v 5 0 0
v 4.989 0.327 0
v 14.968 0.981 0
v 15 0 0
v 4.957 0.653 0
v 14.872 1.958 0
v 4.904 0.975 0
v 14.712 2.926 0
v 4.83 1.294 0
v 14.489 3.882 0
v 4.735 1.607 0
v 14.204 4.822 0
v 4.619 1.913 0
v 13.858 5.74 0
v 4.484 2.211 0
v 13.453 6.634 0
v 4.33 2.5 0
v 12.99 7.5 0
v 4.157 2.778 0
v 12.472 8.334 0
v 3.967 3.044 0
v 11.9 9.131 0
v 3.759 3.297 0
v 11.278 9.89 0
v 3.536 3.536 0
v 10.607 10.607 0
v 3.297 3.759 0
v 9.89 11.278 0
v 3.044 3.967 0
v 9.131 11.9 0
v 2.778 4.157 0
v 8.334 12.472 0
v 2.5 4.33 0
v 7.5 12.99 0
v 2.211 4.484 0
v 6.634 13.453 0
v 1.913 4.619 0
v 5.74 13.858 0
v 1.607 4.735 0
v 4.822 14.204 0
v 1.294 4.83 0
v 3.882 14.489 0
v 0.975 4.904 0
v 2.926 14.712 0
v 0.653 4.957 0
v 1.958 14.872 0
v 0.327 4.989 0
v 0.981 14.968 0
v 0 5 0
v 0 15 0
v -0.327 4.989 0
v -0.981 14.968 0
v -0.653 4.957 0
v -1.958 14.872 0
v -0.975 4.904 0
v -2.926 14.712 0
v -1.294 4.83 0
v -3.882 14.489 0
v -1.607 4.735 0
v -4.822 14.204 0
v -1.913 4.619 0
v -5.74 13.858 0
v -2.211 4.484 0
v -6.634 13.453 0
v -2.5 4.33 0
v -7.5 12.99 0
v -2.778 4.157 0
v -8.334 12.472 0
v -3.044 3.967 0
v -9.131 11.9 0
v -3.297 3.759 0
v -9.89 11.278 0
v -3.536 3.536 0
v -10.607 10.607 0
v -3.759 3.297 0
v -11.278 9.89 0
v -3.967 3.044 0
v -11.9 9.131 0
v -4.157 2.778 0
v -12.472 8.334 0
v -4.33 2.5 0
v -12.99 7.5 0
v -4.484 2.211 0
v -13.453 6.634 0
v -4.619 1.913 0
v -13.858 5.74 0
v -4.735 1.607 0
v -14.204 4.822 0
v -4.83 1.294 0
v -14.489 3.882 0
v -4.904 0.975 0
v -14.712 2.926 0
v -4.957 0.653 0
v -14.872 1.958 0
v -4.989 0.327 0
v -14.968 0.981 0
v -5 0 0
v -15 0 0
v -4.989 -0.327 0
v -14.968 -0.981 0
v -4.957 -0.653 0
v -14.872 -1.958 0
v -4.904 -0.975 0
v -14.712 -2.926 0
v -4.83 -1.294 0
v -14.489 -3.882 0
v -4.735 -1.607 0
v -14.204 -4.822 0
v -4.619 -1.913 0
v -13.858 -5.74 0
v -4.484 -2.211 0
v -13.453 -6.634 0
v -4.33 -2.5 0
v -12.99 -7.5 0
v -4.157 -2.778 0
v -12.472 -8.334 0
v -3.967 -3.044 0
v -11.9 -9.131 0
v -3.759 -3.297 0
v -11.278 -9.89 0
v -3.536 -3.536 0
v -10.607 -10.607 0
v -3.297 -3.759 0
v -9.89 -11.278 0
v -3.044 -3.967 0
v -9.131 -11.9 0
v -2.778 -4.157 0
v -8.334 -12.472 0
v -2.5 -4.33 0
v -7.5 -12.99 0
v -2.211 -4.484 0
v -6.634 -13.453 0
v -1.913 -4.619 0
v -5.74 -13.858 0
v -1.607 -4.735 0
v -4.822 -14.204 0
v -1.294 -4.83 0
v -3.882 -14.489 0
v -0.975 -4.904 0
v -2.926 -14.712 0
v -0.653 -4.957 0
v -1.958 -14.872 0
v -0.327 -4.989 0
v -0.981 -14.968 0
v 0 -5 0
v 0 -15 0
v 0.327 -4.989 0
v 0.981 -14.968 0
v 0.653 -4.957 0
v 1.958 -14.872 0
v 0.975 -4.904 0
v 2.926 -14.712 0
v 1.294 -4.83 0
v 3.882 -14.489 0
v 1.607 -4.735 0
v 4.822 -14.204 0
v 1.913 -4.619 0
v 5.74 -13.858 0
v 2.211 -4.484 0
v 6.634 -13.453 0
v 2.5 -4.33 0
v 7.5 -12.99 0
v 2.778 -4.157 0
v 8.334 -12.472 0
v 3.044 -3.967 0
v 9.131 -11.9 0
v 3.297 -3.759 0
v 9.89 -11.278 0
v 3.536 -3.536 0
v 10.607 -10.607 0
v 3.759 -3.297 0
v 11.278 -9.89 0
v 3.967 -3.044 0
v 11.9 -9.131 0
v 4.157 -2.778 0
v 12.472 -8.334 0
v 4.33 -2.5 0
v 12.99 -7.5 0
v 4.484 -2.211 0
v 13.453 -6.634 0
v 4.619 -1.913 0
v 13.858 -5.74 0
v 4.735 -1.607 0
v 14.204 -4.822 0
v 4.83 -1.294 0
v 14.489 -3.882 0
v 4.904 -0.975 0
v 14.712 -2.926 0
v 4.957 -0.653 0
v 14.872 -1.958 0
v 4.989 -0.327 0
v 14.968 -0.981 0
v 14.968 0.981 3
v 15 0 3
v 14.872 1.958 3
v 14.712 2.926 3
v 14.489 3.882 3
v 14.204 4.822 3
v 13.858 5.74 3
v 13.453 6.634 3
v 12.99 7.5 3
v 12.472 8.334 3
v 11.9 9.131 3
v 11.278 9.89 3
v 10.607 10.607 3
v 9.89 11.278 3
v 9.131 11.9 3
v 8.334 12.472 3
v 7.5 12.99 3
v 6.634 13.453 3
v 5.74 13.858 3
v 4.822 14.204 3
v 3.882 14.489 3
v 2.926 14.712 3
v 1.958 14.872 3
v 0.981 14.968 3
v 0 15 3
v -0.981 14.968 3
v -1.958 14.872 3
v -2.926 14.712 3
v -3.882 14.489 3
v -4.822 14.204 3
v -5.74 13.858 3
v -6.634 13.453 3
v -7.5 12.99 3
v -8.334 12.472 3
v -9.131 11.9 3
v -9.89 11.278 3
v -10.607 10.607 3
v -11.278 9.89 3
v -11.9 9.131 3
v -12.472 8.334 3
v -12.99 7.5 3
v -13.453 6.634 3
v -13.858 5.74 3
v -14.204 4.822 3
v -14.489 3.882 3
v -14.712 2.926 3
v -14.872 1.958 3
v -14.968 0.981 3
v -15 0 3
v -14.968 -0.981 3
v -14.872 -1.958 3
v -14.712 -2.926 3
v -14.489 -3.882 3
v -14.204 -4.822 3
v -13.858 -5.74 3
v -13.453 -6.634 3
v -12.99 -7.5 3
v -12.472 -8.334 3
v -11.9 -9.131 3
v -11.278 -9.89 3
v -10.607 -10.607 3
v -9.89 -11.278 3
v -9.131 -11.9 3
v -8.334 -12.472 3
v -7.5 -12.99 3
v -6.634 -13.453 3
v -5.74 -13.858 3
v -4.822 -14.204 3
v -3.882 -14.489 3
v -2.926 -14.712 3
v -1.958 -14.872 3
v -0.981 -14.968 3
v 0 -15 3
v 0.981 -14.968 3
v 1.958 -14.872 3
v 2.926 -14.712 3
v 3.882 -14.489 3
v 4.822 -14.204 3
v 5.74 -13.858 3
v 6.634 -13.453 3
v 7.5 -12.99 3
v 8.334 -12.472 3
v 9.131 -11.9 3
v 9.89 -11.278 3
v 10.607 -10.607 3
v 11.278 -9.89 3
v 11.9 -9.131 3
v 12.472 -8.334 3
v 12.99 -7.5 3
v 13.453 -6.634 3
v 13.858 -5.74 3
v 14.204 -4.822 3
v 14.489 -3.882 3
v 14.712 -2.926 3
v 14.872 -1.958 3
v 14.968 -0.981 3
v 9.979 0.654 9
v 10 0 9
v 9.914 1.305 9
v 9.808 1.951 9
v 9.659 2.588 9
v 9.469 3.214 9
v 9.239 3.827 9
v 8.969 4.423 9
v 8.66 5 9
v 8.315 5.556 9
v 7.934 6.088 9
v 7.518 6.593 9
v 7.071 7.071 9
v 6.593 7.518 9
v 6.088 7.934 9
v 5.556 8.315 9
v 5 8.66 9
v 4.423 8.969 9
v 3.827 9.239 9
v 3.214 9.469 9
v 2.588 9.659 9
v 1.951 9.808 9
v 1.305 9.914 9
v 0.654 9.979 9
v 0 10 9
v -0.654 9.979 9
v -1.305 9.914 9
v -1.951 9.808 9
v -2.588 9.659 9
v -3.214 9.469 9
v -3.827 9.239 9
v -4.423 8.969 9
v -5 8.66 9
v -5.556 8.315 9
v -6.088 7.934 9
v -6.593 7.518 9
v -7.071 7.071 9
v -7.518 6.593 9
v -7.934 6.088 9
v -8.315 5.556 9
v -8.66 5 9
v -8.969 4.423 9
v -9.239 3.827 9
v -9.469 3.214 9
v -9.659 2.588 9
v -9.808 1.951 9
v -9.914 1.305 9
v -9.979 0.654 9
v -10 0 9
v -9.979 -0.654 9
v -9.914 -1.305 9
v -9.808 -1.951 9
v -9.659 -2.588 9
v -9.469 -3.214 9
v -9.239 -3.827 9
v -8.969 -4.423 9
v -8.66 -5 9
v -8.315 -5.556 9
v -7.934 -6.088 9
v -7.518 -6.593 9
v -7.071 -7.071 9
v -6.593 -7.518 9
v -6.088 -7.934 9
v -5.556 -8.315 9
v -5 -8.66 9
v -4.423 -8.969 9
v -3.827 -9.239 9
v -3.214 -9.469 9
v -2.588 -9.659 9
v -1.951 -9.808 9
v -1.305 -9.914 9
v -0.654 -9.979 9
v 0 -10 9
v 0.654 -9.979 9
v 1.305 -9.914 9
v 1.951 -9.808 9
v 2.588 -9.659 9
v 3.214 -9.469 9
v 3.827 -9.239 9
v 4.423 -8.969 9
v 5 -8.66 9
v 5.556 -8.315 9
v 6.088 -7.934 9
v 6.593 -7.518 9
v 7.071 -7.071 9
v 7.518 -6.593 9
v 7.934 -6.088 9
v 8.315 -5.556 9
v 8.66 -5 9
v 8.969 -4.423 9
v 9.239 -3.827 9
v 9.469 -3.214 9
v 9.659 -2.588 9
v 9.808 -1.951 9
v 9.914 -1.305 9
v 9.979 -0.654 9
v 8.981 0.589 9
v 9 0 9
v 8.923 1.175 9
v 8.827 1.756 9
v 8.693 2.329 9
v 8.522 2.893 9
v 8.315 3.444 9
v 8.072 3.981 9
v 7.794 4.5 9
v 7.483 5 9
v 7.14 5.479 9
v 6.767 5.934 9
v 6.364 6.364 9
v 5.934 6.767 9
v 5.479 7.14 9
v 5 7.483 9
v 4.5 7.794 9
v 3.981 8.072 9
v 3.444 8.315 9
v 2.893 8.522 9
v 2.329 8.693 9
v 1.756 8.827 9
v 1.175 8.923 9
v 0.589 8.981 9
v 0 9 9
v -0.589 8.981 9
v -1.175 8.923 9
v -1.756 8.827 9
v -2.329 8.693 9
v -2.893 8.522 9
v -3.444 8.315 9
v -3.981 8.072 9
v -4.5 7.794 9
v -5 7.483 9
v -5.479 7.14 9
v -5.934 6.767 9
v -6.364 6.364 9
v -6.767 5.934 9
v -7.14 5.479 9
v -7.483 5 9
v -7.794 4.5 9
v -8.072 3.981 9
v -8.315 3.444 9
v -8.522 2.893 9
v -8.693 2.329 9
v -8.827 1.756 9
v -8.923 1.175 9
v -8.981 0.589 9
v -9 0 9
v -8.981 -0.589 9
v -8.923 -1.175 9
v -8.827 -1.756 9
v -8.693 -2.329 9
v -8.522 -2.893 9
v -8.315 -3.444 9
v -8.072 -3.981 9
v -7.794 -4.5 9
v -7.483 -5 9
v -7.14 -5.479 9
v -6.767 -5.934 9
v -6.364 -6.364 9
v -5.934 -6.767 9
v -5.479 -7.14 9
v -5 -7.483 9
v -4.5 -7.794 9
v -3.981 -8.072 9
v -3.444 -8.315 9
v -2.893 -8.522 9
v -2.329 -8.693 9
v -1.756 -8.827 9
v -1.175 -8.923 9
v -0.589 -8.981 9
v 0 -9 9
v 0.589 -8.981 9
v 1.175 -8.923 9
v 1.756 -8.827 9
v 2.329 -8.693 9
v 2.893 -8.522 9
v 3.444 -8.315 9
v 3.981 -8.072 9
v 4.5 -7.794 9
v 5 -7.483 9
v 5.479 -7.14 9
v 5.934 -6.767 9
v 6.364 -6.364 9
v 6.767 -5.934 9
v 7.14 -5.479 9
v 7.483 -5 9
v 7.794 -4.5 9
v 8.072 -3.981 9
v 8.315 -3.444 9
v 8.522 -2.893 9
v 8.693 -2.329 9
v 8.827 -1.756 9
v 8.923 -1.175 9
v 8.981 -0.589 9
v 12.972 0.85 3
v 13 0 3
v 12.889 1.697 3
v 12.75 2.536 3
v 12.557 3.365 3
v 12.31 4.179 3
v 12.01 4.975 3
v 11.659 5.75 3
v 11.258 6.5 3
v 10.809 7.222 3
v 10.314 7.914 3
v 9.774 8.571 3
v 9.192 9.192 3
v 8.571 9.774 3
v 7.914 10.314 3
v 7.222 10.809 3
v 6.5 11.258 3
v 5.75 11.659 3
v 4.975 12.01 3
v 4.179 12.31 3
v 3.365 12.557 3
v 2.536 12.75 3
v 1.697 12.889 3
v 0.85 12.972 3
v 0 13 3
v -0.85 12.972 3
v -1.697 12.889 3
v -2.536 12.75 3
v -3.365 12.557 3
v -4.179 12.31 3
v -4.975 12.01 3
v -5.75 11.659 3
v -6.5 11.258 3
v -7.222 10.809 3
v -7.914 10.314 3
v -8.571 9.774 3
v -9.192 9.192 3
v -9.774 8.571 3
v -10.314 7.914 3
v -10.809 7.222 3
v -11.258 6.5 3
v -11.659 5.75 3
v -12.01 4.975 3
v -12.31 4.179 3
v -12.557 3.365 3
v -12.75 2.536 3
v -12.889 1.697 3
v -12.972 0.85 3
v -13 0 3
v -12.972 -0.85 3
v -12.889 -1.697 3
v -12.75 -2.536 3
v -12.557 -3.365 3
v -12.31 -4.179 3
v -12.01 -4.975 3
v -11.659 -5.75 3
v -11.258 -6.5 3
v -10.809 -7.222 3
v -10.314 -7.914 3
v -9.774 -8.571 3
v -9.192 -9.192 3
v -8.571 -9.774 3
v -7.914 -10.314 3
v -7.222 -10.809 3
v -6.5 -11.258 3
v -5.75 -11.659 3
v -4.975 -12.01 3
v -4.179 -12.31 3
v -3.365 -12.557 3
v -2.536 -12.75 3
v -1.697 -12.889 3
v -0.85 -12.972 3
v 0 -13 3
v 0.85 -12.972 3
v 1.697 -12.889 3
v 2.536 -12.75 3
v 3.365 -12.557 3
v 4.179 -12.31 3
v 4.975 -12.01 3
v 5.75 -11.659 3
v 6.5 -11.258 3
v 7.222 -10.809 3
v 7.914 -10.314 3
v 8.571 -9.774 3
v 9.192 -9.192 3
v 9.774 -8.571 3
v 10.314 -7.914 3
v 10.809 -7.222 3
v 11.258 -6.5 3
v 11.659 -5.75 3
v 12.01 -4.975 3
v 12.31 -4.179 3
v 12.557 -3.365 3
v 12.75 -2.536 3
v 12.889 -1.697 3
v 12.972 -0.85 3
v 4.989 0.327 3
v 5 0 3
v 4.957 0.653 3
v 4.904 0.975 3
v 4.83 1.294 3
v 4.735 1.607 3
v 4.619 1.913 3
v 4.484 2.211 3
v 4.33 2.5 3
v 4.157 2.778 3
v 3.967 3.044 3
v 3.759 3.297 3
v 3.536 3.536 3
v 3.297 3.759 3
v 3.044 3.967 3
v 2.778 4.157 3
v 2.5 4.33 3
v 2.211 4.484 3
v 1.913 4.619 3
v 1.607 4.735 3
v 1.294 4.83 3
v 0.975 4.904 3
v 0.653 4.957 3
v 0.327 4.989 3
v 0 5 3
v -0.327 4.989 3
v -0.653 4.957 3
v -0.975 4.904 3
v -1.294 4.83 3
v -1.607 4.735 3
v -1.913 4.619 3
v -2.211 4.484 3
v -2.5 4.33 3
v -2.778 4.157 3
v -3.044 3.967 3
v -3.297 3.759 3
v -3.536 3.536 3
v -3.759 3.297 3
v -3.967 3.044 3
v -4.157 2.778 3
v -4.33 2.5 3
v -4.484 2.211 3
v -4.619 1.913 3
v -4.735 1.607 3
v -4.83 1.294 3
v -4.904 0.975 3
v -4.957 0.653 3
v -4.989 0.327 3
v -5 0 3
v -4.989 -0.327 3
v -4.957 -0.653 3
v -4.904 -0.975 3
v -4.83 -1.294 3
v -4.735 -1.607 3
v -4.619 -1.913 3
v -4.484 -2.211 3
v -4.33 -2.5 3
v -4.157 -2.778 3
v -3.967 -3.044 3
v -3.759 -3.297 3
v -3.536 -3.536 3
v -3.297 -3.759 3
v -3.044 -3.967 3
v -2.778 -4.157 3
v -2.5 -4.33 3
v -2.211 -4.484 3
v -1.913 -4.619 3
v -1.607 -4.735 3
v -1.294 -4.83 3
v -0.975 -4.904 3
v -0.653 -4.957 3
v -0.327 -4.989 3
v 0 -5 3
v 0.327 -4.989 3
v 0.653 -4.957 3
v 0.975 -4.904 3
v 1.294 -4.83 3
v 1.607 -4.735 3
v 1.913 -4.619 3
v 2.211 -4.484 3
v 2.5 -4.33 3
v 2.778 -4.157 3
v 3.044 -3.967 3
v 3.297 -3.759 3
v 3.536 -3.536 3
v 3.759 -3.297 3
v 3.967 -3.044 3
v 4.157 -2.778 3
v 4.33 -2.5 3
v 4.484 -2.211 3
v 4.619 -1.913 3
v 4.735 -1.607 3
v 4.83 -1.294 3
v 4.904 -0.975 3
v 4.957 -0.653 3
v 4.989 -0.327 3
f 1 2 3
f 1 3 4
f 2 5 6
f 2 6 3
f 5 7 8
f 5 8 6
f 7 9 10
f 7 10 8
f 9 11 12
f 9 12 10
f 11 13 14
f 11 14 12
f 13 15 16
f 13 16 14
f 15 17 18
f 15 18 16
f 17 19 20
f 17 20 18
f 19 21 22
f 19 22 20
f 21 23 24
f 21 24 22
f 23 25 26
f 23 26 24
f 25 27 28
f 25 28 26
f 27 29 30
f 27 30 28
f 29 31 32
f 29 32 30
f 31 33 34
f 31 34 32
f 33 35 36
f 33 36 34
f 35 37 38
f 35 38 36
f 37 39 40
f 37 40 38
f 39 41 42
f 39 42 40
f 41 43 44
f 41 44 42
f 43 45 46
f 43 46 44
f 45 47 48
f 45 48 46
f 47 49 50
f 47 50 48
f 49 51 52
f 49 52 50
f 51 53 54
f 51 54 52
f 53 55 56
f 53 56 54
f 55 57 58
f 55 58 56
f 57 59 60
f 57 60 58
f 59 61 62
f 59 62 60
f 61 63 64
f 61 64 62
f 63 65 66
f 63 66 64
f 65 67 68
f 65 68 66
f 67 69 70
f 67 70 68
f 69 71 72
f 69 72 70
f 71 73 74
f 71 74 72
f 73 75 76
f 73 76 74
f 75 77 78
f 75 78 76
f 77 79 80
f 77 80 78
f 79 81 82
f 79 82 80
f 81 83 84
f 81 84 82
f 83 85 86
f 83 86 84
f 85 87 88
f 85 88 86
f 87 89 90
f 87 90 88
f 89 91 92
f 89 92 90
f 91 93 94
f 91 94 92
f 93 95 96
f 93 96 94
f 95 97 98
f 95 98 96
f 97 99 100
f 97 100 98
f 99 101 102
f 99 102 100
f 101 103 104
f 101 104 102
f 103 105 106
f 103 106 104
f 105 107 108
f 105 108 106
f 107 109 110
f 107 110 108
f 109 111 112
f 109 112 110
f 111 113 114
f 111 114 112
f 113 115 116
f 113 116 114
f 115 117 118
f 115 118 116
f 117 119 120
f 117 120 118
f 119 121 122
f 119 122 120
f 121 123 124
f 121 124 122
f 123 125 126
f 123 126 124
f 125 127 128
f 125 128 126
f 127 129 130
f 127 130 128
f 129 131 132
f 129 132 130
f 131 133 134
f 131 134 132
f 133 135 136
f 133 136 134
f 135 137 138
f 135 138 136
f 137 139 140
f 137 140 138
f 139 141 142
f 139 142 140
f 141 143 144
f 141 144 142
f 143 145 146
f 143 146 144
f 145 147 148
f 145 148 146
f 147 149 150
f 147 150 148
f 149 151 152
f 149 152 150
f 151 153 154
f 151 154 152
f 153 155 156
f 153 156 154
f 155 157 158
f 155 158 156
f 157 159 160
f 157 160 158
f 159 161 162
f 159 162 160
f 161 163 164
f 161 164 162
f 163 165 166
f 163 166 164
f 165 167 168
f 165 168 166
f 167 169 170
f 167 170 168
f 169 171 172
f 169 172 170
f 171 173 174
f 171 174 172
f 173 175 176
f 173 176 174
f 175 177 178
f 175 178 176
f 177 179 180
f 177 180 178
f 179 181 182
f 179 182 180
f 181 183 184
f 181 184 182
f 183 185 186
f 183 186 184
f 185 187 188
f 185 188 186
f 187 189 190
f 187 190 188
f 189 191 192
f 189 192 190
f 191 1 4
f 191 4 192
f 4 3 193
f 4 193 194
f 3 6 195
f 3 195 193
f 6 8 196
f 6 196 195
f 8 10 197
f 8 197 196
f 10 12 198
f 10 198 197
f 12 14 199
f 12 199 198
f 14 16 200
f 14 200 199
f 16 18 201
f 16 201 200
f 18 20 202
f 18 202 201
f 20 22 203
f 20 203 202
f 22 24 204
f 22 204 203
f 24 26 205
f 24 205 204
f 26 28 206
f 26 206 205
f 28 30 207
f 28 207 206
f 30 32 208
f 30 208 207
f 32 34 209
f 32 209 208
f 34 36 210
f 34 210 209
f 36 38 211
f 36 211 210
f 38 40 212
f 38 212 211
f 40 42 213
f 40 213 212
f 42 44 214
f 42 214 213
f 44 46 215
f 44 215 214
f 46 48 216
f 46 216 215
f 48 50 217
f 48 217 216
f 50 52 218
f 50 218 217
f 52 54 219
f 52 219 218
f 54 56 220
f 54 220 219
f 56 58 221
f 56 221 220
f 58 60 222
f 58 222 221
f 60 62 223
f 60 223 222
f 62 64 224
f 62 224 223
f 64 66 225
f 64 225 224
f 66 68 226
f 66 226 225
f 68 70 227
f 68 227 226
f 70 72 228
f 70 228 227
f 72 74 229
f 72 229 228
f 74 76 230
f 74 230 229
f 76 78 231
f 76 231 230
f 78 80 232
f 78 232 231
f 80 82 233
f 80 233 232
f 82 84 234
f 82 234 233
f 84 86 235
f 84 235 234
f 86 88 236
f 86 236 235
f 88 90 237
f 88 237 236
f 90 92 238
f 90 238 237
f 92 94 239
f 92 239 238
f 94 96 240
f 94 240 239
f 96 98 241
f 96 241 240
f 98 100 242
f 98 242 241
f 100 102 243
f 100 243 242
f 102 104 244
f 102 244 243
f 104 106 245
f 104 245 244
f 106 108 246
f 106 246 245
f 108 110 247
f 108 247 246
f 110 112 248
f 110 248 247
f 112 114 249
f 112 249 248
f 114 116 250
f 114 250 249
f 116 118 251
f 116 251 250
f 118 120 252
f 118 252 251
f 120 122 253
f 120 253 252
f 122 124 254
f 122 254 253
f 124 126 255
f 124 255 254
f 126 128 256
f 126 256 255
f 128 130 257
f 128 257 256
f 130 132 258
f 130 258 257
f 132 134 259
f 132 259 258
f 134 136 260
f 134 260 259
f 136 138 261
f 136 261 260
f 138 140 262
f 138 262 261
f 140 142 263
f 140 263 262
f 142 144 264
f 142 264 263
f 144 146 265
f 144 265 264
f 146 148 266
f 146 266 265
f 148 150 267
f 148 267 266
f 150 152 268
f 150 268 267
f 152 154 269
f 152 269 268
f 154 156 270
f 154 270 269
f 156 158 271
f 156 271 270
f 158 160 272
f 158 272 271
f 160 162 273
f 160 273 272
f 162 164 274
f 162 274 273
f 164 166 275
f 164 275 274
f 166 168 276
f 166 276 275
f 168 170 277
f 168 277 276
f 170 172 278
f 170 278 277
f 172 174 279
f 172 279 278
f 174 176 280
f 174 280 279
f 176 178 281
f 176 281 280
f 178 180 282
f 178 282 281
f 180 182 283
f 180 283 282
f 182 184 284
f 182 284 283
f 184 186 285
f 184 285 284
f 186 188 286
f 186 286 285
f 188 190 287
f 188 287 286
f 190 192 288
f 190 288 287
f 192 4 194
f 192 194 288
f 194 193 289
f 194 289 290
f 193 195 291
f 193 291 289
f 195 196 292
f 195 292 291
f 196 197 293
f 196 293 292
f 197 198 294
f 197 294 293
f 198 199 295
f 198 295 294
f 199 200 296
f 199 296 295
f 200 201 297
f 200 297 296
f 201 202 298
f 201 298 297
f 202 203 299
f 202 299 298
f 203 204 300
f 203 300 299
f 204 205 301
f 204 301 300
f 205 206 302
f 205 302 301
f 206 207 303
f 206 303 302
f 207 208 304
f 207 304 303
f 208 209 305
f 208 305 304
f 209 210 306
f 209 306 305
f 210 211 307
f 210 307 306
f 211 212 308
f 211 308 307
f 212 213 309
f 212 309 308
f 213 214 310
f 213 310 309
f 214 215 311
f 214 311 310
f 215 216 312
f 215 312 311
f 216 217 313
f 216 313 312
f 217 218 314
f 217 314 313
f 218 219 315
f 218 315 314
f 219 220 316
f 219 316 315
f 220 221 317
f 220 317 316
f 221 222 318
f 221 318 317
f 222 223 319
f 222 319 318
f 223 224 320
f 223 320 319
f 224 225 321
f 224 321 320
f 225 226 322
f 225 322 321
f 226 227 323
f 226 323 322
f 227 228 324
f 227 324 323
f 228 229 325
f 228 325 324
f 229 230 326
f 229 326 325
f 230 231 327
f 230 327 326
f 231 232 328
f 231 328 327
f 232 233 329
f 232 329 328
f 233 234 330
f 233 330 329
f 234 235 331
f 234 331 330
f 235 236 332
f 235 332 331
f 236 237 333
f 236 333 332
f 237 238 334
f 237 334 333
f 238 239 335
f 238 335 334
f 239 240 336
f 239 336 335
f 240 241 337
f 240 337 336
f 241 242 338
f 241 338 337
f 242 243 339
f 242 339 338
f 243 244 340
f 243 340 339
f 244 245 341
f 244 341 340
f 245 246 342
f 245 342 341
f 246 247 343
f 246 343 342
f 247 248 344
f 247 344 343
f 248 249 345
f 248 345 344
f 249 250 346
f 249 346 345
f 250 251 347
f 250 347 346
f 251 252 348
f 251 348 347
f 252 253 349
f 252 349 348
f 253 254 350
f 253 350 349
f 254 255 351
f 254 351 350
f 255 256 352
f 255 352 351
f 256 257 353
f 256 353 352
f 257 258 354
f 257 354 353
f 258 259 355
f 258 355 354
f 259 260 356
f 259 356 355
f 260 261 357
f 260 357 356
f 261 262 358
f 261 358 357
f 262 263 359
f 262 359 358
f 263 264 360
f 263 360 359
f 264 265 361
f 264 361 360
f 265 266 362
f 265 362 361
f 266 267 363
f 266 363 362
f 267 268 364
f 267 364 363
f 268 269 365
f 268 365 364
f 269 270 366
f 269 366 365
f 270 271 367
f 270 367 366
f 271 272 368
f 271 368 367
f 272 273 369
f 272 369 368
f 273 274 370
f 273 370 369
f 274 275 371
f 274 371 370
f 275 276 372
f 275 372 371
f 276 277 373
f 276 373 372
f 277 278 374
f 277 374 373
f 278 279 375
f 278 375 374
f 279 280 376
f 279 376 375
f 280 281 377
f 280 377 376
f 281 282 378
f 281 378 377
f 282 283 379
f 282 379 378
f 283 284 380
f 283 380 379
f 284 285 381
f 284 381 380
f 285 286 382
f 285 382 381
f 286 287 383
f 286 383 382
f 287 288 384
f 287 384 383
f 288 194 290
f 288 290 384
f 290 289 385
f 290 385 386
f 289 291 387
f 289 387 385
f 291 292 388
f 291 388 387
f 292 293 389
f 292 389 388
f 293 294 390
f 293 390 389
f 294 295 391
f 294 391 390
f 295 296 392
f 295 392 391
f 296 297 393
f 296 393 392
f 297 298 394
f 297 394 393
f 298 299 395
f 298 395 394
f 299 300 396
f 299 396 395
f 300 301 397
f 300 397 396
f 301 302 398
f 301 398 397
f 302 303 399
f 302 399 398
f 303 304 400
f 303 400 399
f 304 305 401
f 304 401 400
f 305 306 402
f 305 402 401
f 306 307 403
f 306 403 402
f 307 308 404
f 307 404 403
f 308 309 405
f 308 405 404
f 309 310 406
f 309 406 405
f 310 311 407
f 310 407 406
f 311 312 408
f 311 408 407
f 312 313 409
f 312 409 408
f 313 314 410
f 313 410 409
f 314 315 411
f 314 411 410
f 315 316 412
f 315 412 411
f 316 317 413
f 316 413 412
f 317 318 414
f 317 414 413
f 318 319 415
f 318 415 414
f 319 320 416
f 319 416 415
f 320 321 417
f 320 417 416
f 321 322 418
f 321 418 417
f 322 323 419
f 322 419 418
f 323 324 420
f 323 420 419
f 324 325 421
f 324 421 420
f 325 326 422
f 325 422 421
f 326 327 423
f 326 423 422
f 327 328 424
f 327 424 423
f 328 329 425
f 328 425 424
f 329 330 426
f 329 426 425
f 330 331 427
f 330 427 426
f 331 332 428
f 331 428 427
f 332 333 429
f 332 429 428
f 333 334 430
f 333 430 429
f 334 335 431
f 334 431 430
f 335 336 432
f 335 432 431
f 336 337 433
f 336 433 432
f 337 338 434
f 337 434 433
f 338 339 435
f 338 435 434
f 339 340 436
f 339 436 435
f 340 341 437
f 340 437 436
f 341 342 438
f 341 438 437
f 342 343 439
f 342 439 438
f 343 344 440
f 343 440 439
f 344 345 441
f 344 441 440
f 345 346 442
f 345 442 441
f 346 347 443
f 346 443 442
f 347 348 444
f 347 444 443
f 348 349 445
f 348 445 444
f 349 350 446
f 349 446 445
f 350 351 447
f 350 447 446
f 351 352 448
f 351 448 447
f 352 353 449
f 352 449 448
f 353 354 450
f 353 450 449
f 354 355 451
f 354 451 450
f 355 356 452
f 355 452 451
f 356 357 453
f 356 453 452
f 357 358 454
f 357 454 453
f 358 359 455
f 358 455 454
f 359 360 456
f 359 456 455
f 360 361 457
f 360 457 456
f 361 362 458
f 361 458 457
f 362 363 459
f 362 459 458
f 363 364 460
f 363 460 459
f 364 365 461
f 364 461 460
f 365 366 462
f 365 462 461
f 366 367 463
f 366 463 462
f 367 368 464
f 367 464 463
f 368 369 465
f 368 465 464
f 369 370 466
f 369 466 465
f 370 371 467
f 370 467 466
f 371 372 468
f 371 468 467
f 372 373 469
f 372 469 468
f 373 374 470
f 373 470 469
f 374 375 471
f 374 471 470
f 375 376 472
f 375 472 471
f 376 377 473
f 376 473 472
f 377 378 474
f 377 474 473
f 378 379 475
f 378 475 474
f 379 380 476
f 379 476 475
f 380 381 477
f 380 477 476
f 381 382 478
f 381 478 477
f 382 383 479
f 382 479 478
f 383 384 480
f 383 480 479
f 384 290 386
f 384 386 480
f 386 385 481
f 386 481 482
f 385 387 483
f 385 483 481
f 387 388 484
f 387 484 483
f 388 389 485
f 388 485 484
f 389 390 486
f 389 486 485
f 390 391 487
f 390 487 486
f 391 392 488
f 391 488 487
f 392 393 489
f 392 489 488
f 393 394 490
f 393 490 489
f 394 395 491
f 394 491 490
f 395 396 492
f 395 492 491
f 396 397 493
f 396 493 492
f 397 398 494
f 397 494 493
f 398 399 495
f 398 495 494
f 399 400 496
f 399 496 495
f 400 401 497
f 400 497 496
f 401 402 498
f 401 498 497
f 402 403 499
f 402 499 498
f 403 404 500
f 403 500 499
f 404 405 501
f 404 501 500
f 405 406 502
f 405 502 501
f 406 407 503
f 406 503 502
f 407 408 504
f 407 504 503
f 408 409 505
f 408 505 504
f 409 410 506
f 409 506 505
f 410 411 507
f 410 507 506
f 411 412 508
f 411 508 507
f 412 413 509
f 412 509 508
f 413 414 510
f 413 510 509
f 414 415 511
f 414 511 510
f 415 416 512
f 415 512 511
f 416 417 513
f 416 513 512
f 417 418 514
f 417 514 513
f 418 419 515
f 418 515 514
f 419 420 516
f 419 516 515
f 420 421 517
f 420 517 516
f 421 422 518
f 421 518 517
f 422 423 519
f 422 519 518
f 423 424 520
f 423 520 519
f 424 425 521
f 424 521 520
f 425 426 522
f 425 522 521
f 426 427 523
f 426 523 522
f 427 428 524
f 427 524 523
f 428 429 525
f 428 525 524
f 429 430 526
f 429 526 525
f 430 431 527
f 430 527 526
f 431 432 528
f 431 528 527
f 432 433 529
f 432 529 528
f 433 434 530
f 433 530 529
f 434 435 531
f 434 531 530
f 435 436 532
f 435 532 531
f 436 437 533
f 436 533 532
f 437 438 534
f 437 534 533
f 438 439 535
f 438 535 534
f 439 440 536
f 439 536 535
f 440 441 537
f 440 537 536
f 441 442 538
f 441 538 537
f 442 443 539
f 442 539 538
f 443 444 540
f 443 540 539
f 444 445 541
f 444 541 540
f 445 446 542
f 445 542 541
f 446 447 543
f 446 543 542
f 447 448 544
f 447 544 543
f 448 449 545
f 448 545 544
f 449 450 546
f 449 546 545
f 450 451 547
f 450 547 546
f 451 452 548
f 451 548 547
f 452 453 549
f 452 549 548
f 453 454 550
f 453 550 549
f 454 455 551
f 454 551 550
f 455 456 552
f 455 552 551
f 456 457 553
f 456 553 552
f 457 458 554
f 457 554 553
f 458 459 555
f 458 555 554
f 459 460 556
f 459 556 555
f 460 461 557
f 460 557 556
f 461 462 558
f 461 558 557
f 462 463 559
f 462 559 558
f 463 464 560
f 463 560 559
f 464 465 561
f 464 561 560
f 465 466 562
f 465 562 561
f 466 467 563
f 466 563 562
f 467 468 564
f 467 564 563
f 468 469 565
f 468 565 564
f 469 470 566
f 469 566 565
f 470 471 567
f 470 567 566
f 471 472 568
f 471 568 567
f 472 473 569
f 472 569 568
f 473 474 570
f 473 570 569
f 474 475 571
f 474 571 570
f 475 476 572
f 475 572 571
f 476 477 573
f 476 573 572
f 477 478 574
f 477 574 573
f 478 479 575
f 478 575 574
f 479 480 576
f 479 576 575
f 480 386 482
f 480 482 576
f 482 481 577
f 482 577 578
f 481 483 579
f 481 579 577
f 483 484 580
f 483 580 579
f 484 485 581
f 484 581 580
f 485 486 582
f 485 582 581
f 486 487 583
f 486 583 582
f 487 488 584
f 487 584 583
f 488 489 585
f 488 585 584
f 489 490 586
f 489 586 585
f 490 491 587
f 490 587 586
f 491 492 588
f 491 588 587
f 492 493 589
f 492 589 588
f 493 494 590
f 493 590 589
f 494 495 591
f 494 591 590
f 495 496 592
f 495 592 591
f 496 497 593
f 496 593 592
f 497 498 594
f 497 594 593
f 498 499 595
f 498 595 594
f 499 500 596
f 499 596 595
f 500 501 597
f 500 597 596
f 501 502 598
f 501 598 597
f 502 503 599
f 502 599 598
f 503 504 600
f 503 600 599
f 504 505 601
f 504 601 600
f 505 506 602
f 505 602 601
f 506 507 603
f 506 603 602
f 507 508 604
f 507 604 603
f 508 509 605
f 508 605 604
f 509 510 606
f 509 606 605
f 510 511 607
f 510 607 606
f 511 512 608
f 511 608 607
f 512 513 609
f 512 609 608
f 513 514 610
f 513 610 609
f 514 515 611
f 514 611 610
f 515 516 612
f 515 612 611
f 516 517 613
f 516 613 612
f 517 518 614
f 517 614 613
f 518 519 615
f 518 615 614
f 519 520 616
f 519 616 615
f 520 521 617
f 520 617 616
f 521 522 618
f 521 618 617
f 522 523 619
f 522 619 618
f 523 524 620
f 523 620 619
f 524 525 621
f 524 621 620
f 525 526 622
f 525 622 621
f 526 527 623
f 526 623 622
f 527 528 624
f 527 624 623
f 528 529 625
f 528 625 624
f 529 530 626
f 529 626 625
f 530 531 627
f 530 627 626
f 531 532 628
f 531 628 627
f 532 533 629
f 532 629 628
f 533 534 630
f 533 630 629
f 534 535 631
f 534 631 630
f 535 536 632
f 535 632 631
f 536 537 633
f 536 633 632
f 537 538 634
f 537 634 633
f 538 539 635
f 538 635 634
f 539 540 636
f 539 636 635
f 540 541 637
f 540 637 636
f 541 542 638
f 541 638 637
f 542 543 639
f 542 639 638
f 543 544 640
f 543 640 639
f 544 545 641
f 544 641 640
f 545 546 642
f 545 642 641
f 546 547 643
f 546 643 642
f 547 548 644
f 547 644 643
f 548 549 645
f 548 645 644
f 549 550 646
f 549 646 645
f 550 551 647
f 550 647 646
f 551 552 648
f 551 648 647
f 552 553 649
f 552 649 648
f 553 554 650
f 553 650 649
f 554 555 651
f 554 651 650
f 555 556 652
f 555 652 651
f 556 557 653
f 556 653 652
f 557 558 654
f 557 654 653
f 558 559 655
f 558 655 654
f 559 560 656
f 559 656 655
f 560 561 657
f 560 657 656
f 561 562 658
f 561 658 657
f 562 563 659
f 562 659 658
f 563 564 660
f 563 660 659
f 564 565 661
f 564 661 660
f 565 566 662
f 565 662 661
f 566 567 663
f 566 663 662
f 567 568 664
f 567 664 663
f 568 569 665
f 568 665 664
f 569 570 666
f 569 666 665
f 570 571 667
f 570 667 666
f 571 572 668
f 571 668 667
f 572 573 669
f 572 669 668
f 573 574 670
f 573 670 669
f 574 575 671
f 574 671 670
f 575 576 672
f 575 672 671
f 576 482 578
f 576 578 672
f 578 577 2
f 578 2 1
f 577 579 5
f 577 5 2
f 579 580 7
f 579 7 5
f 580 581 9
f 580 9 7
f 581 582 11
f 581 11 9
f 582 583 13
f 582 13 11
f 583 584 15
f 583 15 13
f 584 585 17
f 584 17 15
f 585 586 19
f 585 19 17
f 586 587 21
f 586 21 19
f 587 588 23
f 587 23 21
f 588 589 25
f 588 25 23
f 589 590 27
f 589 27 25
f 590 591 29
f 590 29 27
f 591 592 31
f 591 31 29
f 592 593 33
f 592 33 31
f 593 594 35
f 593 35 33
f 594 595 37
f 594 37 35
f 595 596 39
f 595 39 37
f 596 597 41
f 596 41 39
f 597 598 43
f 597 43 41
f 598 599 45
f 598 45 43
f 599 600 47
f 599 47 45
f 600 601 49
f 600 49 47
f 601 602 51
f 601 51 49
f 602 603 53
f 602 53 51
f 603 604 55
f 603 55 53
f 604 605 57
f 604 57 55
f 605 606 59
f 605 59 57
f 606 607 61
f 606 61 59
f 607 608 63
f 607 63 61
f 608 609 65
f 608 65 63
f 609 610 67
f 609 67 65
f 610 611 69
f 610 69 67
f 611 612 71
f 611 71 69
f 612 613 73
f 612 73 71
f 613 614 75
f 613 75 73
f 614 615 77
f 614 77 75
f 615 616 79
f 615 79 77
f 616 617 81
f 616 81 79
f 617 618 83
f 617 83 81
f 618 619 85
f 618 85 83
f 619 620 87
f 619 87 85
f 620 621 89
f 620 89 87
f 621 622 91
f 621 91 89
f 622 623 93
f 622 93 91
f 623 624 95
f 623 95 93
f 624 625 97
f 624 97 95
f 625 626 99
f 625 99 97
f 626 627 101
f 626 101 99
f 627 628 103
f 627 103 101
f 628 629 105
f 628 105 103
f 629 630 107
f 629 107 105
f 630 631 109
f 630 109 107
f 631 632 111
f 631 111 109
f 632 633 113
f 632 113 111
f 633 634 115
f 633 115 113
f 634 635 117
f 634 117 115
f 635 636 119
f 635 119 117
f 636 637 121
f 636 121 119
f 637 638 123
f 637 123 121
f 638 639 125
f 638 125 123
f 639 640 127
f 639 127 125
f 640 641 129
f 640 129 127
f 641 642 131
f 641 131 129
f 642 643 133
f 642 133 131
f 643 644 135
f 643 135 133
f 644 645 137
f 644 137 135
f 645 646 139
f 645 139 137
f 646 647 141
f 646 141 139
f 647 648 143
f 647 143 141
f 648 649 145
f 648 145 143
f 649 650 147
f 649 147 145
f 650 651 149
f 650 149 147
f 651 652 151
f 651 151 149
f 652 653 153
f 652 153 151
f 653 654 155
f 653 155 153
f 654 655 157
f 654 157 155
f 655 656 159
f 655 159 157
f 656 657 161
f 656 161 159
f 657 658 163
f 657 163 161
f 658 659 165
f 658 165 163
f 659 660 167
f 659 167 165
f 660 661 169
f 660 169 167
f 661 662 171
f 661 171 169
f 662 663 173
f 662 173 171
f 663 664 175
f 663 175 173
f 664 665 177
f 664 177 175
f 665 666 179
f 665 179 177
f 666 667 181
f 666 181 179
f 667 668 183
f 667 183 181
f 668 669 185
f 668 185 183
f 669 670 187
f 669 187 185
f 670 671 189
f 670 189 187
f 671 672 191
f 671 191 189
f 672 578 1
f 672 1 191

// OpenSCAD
// Original MechIntel educational model. CC0-1.0. Units: mm.
// Not a standardized or load-rated component.
$fn=96;
// Section points: [radius, height], mm. Edit to change the profile.
section=[[5, 0], [15, 0], [15, 3], [10, 9], [9, 9], [13, 3], [5, 3]];
rotate_extrude($fn=96) polygon(points=section);
